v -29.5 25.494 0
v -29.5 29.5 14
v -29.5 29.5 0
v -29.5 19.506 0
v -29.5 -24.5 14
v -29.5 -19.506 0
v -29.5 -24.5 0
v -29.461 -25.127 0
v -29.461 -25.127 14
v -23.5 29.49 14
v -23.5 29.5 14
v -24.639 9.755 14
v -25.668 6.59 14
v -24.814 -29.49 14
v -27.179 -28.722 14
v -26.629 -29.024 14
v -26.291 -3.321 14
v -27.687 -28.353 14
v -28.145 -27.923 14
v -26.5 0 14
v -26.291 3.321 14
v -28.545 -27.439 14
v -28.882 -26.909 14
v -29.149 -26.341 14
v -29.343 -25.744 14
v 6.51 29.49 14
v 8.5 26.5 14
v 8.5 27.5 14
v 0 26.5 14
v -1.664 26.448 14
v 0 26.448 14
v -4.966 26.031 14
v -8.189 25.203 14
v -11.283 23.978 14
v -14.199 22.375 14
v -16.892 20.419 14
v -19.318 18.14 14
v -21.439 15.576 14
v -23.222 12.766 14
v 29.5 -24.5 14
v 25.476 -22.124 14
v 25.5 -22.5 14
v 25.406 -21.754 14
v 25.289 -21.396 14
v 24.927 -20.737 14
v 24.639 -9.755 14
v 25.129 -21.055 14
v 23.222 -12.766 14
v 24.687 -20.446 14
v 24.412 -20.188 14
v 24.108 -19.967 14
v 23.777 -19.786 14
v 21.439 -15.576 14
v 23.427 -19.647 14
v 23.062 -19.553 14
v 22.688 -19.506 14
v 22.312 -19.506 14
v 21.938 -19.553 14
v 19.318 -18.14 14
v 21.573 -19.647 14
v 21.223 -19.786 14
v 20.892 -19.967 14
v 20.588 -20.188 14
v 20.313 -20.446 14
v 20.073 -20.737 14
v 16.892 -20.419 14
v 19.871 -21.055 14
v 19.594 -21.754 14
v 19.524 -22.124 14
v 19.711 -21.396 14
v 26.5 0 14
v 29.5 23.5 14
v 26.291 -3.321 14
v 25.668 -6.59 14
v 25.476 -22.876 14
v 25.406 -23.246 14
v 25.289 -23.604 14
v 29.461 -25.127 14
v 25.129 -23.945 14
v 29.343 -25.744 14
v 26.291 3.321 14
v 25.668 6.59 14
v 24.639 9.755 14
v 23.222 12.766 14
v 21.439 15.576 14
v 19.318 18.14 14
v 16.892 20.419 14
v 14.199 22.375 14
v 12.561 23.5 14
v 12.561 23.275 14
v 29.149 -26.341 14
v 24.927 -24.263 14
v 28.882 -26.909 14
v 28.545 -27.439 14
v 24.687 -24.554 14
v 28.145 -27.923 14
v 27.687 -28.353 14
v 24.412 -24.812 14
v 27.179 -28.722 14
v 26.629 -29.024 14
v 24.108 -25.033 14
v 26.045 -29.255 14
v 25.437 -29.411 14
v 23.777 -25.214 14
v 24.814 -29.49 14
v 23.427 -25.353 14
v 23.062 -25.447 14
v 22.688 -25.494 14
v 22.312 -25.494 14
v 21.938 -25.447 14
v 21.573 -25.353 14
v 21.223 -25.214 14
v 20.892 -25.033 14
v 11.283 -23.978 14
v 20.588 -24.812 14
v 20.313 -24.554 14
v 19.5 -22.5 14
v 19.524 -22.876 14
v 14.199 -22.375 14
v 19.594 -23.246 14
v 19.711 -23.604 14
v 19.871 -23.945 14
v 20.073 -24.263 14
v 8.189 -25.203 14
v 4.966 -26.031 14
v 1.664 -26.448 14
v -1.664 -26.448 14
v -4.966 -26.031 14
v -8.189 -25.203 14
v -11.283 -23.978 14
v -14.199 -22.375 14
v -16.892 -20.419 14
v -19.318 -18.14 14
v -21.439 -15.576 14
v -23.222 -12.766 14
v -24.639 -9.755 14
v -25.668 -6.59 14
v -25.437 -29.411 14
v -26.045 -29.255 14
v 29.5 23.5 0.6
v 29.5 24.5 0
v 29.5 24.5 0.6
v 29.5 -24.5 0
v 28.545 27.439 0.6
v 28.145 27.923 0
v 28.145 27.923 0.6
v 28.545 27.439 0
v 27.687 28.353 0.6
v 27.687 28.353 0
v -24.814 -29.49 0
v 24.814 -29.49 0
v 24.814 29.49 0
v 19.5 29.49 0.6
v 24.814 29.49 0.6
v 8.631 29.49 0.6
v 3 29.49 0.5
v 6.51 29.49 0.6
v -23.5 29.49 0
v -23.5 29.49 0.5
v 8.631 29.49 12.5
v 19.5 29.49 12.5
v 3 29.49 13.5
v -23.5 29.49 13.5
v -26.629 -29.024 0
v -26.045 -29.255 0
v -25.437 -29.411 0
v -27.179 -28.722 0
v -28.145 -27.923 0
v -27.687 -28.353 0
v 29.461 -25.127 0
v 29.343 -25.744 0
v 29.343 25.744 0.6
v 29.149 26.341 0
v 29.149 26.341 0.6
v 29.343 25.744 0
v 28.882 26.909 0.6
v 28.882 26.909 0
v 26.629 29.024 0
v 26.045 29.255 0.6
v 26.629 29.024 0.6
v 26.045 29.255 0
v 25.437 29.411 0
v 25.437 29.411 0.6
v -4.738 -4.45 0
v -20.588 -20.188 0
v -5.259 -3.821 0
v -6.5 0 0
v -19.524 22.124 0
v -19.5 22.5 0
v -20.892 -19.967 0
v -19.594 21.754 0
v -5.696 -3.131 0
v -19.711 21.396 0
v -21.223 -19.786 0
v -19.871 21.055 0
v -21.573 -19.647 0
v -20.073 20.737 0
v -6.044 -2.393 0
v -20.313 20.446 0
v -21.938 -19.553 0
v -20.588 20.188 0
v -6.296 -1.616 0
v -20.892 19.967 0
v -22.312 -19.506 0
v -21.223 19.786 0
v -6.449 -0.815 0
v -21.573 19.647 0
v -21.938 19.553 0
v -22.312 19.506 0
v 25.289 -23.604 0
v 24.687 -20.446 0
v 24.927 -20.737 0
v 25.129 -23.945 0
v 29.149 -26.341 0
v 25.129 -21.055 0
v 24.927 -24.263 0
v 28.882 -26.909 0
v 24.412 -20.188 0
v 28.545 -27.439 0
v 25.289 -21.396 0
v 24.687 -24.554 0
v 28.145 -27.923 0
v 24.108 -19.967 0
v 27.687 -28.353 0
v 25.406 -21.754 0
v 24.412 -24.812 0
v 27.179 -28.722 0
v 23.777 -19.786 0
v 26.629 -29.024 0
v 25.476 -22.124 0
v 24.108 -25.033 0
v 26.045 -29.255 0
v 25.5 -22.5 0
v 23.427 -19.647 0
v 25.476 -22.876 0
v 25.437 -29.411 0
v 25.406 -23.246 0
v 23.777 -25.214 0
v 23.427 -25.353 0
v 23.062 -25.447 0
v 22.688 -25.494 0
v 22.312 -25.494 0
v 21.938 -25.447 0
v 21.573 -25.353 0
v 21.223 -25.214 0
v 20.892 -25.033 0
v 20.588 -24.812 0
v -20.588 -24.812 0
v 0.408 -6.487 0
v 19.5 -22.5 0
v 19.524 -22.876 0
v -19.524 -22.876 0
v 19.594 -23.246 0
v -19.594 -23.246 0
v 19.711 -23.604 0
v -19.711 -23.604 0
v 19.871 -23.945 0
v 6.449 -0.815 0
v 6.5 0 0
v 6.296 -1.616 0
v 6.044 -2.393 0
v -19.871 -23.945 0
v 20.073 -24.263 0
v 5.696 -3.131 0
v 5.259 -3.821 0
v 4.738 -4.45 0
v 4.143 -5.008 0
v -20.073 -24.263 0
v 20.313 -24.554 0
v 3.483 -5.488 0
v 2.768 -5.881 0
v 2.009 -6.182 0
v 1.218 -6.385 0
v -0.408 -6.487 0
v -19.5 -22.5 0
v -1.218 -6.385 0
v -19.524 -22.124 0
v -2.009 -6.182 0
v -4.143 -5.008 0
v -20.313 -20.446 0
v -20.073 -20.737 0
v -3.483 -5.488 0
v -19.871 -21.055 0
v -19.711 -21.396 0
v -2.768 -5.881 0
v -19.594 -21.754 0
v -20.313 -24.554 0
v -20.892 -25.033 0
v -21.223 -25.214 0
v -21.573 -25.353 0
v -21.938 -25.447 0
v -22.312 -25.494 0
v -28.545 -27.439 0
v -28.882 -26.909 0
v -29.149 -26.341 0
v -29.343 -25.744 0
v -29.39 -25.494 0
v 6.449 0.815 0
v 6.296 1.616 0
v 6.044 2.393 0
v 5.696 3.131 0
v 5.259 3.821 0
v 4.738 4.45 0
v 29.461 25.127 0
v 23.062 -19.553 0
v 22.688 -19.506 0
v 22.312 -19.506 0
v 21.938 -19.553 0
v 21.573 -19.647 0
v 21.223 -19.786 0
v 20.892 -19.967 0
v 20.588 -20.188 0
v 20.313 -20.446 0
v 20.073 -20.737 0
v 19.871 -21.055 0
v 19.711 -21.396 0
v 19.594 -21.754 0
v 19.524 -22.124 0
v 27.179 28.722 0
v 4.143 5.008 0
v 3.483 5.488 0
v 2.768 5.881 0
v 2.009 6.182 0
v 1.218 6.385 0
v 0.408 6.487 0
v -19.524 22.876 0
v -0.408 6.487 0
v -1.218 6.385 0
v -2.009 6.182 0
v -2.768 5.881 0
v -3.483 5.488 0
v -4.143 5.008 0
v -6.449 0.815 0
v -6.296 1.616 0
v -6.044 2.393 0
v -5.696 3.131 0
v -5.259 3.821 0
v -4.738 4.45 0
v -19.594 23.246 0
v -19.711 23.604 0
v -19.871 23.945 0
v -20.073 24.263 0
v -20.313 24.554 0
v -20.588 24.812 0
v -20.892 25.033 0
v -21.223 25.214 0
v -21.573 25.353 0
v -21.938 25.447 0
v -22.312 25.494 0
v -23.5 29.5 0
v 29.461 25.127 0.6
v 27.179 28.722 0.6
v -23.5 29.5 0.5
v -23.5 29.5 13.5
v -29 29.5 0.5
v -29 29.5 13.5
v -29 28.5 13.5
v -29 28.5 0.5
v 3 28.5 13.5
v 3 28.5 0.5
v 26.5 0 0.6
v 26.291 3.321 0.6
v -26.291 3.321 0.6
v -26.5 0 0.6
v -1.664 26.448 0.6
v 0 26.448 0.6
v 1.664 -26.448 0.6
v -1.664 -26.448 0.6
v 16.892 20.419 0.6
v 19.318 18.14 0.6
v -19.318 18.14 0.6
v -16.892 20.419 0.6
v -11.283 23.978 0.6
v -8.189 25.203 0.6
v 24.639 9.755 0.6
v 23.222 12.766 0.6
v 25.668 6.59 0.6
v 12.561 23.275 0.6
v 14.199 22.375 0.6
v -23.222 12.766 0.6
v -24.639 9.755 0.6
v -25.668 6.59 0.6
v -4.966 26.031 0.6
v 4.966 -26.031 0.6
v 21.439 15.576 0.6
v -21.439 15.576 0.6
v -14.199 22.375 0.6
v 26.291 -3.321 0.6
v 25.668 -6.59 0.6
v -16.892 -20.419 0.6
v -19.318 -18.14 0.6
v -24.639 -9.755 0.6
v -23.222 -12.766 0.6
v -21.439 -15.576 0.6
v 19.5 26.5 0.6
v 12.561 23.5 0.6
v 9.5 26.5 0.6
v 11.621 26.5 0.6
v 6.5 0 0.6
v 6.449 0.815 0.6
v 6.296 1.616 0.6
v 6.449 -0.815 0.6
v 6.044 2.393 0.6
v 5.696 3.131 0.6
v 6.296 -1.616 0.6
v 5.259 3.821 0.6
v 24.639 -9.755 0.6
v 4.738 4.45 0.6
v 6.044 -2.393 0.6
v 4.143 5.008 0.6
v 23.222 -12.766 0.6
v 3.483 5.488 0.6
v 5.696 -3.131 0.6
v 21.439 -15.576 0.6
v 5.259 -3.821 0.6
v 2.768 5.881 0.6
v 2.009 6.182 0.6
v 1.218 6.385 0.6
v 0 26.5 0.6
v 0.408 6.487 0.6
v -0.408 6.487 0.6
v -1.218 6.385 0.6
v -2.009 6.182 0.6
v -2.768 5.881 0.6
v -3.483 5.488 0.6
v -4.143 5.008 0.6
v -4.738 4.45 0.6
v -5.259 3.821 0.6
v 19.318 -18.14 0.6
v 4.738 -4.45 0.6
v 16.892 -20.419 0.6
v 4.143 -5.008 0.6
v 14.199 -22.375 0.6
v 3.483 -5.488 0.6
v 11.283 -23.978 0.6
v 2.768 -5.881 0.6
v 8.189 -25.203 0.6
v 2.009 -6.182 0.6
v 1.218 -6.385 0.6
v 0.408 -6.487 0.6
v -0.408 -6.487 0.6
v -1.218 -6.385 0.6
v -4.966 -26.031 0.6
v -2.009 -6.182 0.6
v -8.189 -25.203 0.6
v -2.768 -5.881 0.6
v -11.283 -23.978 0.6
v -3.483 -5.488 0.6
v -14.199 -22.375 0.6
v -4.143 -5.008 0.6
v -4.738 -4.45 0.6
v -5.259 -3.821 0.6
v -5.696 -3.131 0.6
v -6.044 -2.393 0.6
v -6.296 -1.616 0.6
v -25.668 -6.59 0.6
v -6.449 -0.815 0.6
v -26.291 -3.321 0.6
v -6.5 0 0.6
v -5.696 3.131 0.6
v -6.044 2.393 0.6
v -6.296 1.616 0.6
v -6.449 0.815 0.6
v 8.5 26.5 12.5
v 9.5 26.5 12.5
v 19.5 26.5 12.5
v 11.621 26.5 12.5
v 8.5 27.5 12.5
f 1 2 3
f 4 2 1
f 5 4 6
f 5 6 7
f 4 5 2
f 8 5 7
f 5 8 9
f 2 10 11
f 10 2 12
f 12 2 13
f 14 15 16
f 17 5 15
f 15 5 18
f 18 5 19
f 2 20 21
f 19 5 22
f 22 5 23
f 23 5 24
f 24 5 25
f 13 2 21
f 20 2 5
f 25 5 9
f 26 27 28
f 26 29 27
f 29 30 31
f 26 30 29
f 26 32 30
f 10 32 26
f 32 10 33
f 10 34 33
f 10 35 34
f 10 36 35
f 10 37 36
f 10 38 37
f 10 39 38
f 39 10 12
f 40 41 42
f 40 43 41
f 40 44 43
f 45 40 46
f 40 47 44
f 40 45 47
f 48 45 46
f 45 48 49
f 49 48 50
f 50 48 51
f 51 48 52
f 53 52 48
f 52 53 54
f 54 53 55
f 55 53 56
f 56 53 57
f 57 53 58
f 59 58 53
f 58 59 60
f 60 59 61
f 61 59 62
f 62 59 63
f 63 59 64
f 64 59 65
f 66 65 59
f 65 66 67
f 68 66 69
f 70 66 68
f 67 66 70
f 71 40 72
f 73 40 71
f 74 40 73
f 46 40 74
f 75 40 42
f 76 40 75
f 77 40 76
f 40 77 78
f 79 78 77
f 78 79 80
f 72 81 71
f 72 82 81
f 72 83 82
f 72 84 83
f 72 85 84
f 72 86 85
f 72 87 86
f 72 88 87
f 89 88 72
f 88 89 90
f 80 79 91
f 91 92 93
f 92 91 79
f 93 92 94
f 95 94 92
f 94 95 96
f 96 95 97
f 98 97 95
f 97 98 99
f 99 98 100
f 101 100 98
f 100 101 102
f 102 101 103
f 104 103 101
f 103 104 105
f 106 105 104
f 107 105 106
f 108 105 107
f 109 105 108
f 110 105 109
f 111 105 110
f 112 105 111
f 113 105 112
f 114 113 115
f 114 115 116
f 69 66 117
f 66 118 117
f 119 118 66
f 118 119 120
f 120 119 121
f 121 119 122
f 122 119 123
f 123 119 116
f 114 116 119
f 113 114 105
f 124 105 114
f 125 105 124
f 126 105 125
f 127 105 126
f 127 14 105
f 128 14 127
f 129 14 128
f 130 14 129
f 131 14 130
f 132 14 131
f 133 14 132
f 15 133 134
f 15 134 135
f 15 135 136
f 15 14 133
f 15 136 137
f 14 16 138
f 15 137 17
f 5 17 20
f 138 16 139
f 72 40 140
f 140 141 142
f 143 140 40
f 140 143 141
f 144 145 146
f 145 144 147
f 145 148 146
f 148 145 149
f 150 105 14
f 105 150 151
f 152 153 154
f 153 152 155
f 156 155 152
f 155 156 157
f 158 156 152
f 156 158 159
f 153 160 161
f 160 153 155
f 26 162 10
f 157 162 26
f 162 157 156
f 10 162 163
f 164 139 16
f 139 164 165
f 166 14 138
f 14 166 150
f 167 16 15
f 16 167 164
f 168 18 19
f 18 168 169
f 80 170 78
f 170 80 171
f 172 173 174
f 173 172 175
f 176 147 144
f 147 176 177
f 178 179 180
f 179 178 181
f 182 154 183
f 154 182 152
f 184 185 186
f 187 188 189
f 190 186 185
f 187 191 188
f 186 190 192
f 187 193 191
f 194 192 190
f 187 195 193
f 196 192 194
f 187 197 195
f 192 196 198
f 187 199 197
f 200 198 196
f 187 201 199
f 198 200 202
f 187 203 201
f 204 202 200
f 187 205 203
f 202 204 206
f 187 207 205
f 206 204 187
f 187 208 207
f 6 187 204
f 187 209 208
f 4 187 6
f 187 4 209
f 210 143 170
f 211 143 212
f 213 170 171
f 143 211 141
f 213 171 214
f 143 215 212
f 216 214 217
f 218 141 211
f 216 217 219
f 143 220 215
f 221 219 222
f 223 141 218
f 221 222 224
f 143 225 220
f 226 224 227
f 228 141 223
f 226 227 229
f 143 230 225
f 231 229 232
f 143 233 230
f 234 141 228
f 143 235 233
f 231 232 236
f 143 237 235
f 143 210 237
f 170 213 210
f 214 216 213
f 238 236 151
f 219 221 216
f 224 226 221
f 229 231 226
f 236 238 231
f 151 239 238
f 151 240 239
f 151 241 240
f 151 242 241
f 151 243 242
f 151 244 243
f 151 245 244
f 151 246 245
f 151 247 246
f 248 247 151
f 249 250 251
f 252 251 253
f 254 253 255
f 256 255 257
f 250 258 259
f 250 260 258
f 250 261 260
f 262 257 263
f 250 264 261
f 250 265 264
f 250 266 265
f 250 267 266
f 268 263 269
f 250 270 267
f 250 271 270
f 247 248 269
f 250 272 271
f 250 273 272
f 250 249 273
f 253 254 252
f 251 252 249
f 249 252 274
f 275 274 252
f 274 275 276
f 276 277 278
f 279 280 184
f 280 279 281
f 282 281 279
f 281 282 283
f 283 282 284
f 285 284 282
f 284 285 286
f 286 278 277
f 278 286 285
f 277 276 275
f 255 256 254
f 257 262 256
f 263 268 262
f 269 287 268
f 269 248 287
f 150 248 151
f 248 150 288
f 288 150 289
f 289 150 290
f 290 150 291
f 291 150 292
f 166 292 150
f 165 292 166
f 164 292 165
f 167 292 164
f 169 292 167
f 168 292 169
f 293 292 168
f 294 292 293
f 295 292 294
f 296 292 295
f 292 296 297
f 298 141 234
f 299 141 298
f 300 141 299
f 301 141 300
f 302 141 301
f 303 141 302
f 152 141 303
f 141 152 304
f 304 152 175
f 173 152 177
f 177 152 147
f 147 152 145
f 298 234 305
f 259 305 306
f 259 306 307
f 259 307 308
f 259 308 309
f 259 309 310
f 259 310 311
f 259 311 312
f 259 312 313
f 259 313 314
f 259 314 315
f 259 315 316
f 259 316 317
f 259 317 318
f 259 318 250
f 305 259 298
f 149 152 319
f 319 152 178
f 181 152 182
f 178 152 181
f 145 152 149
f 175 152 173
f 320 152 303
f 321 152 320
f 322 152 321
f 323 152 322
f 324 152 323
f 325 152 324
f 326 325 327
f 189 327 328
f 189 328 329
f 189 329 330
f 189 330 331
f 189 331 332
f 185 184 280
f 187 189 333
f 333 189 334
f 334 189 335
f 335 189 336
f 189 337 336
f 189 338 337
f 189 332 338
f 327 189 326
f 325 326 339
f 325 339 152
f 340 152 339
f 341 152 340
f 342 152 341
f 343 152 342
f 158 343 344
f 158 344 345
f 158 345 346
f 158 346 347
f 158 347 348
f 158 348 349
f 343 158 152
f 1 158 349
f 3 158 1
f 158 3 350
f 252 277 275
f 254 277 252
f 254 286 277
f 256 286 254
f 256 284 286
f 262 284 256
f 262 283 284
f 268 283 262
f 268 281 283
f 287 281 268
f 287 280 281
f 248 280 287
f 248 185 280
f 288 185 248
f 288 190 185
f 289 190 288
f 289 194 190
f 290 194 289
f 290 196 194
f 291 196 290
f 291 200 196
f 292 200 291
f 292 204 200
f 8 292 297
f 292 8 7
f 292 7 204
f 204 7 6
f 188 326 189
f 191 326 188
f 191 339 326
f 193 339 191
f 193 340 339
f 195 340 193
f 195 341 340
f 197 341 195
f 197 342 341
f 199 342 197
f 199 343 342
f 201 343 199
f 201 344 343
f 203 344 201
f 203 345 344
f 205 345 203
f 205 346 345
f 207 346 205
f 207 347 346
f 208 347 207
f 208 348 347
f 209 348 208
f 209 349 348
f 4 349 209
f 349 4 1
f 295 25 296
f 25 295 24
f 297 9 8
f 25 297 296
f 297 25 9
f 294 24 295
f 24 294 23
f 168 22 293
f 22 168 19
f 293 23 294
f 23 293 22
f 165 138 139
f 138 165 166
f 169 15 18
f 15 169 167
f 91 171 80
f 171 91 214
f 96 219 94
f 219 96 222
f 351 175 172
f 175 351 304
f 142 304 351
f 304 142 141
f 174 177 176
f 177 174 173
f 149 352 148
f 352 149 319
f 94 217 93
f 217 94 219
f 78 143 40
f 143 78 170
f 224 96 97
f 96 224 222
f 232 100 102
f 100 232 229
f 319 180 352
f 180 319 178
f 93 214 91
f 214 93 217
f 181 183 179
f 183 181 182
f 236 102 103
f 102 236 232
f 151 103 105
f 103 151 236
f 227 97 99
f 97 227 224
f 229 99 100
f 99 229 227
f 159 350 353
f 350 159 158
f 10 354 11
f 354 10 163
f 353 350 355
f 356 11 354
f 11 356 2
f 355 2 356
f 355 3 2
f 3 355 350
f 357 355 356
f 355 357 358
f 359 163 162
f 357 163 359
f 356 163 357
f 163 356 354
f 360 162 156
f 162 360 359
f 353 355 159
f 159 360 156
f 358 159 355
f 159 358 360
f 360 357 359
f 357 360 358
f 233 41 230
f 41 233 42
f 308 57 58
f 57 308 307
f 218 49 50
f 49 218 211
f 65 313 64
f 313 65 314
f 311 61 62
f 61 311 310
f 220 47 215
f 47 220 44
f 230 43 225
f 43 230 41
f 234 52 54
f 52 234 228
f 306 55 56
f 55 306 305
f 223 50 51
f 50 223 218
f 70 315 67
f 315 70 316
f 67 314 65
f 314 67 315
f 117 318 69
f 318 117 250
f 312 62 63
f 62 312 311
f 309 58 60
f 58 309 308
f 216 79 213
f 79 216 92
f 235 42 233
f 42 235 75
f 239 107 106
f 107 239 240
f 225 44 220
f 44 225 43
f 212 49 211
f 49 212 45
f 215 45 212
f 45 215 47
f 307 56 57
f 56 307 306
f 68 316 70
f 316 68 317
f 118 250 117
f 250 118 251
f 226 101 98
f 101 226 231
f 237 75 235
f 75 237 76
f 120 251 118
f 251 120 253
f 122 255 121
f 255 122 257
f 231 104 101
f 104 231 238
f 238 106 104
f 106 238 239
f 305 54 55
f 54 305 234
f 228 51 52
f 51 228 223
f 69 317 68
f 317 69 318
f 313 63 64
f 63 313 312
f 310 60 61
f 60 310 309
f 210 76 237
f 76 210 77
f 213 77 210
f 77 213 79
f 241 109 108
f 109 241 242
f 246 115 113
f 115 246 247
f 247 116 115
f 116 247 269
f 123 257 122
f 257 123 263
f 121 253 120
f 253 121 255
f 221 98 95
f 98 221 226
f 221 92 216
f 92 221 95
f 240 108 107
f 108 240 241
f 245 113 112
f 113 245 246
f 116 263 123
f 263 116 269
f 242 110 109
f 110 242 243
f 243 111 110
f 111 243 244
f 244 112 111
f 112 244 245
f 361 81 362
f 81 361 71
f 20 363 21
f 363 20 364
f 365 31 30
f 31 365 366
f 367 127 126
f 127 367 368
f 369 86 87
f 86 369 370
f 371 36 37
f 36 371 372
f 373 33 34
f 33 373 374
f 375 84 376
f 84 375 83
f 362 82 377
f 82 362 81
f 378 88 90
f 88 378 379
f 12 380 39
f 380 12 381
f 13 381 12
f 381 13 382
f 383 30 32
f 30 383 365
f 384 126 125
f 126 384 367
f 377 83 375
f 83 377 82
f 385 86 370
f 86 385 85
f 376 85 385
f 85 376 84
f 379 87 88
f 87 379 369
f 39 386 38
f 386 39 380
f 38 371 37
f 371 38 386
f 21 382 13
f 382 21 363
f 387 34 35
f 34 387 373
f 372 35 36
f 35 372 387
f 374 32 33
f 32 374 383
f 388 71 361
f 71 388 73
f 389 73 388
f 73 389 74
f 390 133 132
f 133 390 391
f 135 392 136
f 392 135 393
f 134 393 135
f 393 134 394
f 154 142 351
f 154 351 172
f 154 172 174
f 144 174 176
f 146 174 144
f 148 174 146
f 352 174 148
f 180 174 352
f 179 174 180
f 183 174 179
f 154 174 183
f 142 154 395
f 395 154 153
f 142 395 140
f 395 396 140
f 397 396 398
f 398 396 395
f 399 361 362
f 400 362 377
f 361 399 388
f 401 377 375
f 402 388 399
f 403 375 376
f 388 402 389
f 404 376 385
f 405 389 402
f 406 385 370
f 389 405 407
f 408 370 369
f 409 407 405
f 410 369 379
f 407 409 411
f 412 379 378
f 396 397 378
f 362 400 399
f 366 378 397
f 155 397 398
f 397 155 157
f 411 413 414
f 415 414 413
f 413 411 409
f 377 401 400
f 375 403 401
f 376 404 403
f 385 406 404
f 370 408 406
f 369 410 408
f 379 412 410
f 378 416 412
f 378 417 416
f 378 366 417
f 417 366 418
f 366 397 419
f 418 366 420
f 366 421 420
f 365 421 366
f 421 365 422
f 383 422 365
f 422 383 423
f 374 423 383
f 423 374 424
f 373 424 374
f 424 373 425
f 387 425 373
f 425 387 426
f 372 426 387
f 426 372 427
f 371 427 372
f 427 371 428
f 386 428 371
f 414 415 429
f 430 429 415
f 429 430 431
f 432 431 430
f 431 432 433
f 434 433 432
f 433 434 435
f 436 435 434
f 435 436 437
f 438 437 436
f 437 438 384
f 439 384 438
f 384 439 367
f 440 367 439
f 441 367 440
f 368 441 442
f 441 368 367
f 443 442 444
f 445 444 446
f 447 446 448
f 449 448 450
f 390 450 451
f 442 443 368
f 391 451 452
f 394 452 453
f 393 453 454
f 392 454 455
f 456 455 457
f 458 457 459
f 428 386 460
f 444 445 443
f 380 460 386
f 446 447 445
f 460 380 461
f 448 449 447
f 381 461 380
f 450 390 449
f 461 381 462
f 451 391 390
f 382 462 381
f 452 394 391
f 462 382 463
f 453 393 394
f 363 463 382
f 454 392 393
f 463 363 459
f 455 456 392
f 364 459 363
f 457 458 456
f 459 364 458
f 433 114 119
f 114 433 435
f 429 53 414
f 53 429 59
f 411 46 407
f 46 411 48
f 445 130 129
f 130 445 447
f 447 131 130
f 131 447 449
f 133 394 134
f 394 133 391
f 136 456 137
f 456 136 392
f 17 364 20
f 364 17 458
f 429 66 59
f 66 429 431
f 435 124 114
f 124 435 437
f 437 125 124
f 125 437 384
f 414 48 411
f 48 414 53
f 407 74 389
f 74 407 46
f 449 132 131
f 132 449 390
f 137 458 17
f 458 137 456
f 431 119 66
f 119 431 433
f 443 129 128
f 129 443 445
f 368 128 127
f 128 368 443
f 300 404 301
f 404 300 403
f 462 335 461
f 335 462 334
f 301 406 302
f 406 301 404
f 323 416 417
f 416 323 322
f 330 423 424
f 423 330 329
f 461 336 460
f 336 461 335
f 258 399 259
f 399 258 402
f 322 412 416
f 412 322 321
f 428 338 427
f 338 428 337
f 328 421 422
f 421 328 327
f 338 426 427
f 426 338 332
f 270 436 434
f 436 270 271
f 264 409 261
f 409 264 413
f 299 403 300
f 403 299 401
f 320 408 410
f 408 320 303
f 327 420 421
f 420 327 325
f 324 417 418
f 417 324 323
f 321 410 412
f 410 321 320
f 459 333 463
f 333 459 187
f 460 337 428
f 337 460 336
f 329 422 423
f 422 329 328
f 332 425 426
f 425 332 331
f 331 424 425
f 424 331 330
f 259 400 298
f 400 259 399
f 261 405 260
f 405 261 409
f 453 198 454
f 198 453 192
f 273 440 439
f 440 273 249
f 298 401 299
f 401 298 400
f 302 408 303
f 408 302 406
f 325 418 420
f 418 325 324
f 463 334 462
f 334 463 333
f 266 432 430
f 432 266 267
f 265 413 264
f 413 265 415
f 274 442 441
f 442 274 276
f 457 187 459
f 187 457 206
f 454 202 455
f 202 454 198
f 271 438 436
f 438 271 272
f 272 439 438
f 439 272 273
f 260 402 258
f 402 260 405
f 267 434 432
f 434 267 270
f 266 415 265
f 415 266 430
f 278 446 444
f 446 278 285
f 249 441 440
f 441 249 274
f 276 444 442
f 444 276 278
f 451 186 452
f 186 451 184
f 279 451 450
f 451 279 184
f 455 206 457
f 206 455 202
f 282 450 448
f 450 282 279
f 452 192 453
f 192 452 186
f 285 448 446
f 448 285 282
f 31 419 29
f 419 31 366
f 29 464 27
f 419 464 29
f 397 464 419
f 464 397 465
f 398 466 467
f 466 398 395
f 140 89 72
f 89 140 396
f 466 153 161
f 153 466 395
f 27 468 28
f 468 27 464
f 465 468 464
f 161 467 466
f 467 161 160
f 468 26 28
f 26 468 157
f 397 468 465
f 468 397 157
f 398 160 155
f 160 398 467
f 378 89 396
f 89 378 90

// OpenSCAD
$fn = 50;


difference() {
	union() {
		hull() {
			translate(v = [-24.5000000000, 24.5000000000, 0]) {
				cylinder(h = 14, r = 5);
			}
			translate(v = [24.5000000000, 24.5000000000, 0]) {
				cylinder(h = 14, r = 5);
			}
			translate(v = [-24.5000000000, -24.5000000000, 0]) {
				cylinder(h = 14, r = 5);
			}
			translate(v = [24.5000000000, -24.5000000000, 0]) {
				cylinder(h = 14, r = 5);
			}
		}
		translate(v = [-29.5000000000, 23.5000000000, 0]) {
			cube(size = [6, 6, 14]);
		}
	}
	union() {
		translate(v = [-30.0000000000, -22.5000000000, -250.0000000000]) {
			rotate(a = [0, 0, 0]) {
				difference() {
					union() {
						hull() {
							translate(v = [7.5000000000, 0, 0]) {
								cylinder(h = 250, r = 3.0000000000, r1 = 3.0000000000, r2 = 3.0000000000);
							}
							translate(v = [-7.5000000000, 0, 0]) {
								cylinder(h = 250, r = 3.0000000000, r1 = 3.0000000000, r2 = 3.0000000000);
							}
						}
					}
					union();
				}
			}
		}
		translate(v = [-30.0000000000, 22.5000000000, -250.0000000000]) {
			rotate(a = [0, 0, 0]) {
				difference() {
					union() {
						hull() {
							translate(v = [7.5000000000, 0, 0]) {
								cylinder(h = 250, r = 3.0000000000, r1 = 3.0000000000, r2 = 3.0000000000);
							}
							translate(v = [-7.5000000000, 0, 0]) {
								cylinder(h = 250, r = 3.0000000000, r1 = 3.0000000000, r2 = 3.0000000000);
							}
						}
					}
					union();
				}
			}
		}
		translate(v = [-29.0000000000, 28.5000000000, 0.5000000000]) {
			cube(size = [32, 1, 13.0000000000]);
		}
		translate(v = [22.5000000000, -22.5000000000, -50.0000000000]) {
			cylinder(h = 100, r = 3.0000000000);
		}
		translate(v = [0, 0, 0.6000000000]) {
			cylinder(h = 16.4000000000, r = 26.5000000000);
		}
		translate(v = [0, 0, -7.0000000000]) {
			cylinder(h = 14, r = 6.5000000000);
		}
		translate(v = [0.0000000000, 23.5000000000, 0.6000000000]) {
			cube(size = [29.5000000000, 3, 16.4000000000]);
		}
		translate(v = [19.5000000000, 23.5000000000, 0.6000000000]) {
			cube(size = [10, 6, 16.4000000000]);
		}
		translate(v = [8.5000000000, 23.5000000000, 12.5000000000]) {
			cube(size = [21, 6, 1.5000000000]);
		}
		translate(v = [5.7500000000, 30.2500000000, 0.6000000000]) {
			rotate(a = [0, 0, -45]) {
				cube(size = [7.5000000000, 1.5000000000, 16.4000000000]);
			}
		}
		translate(v = [5.0610000000, 21.5000000000, 0.6000000000]) {
			cube(size = [7.5000000000, 2, 13.4000000000]);
		}
	}
}
